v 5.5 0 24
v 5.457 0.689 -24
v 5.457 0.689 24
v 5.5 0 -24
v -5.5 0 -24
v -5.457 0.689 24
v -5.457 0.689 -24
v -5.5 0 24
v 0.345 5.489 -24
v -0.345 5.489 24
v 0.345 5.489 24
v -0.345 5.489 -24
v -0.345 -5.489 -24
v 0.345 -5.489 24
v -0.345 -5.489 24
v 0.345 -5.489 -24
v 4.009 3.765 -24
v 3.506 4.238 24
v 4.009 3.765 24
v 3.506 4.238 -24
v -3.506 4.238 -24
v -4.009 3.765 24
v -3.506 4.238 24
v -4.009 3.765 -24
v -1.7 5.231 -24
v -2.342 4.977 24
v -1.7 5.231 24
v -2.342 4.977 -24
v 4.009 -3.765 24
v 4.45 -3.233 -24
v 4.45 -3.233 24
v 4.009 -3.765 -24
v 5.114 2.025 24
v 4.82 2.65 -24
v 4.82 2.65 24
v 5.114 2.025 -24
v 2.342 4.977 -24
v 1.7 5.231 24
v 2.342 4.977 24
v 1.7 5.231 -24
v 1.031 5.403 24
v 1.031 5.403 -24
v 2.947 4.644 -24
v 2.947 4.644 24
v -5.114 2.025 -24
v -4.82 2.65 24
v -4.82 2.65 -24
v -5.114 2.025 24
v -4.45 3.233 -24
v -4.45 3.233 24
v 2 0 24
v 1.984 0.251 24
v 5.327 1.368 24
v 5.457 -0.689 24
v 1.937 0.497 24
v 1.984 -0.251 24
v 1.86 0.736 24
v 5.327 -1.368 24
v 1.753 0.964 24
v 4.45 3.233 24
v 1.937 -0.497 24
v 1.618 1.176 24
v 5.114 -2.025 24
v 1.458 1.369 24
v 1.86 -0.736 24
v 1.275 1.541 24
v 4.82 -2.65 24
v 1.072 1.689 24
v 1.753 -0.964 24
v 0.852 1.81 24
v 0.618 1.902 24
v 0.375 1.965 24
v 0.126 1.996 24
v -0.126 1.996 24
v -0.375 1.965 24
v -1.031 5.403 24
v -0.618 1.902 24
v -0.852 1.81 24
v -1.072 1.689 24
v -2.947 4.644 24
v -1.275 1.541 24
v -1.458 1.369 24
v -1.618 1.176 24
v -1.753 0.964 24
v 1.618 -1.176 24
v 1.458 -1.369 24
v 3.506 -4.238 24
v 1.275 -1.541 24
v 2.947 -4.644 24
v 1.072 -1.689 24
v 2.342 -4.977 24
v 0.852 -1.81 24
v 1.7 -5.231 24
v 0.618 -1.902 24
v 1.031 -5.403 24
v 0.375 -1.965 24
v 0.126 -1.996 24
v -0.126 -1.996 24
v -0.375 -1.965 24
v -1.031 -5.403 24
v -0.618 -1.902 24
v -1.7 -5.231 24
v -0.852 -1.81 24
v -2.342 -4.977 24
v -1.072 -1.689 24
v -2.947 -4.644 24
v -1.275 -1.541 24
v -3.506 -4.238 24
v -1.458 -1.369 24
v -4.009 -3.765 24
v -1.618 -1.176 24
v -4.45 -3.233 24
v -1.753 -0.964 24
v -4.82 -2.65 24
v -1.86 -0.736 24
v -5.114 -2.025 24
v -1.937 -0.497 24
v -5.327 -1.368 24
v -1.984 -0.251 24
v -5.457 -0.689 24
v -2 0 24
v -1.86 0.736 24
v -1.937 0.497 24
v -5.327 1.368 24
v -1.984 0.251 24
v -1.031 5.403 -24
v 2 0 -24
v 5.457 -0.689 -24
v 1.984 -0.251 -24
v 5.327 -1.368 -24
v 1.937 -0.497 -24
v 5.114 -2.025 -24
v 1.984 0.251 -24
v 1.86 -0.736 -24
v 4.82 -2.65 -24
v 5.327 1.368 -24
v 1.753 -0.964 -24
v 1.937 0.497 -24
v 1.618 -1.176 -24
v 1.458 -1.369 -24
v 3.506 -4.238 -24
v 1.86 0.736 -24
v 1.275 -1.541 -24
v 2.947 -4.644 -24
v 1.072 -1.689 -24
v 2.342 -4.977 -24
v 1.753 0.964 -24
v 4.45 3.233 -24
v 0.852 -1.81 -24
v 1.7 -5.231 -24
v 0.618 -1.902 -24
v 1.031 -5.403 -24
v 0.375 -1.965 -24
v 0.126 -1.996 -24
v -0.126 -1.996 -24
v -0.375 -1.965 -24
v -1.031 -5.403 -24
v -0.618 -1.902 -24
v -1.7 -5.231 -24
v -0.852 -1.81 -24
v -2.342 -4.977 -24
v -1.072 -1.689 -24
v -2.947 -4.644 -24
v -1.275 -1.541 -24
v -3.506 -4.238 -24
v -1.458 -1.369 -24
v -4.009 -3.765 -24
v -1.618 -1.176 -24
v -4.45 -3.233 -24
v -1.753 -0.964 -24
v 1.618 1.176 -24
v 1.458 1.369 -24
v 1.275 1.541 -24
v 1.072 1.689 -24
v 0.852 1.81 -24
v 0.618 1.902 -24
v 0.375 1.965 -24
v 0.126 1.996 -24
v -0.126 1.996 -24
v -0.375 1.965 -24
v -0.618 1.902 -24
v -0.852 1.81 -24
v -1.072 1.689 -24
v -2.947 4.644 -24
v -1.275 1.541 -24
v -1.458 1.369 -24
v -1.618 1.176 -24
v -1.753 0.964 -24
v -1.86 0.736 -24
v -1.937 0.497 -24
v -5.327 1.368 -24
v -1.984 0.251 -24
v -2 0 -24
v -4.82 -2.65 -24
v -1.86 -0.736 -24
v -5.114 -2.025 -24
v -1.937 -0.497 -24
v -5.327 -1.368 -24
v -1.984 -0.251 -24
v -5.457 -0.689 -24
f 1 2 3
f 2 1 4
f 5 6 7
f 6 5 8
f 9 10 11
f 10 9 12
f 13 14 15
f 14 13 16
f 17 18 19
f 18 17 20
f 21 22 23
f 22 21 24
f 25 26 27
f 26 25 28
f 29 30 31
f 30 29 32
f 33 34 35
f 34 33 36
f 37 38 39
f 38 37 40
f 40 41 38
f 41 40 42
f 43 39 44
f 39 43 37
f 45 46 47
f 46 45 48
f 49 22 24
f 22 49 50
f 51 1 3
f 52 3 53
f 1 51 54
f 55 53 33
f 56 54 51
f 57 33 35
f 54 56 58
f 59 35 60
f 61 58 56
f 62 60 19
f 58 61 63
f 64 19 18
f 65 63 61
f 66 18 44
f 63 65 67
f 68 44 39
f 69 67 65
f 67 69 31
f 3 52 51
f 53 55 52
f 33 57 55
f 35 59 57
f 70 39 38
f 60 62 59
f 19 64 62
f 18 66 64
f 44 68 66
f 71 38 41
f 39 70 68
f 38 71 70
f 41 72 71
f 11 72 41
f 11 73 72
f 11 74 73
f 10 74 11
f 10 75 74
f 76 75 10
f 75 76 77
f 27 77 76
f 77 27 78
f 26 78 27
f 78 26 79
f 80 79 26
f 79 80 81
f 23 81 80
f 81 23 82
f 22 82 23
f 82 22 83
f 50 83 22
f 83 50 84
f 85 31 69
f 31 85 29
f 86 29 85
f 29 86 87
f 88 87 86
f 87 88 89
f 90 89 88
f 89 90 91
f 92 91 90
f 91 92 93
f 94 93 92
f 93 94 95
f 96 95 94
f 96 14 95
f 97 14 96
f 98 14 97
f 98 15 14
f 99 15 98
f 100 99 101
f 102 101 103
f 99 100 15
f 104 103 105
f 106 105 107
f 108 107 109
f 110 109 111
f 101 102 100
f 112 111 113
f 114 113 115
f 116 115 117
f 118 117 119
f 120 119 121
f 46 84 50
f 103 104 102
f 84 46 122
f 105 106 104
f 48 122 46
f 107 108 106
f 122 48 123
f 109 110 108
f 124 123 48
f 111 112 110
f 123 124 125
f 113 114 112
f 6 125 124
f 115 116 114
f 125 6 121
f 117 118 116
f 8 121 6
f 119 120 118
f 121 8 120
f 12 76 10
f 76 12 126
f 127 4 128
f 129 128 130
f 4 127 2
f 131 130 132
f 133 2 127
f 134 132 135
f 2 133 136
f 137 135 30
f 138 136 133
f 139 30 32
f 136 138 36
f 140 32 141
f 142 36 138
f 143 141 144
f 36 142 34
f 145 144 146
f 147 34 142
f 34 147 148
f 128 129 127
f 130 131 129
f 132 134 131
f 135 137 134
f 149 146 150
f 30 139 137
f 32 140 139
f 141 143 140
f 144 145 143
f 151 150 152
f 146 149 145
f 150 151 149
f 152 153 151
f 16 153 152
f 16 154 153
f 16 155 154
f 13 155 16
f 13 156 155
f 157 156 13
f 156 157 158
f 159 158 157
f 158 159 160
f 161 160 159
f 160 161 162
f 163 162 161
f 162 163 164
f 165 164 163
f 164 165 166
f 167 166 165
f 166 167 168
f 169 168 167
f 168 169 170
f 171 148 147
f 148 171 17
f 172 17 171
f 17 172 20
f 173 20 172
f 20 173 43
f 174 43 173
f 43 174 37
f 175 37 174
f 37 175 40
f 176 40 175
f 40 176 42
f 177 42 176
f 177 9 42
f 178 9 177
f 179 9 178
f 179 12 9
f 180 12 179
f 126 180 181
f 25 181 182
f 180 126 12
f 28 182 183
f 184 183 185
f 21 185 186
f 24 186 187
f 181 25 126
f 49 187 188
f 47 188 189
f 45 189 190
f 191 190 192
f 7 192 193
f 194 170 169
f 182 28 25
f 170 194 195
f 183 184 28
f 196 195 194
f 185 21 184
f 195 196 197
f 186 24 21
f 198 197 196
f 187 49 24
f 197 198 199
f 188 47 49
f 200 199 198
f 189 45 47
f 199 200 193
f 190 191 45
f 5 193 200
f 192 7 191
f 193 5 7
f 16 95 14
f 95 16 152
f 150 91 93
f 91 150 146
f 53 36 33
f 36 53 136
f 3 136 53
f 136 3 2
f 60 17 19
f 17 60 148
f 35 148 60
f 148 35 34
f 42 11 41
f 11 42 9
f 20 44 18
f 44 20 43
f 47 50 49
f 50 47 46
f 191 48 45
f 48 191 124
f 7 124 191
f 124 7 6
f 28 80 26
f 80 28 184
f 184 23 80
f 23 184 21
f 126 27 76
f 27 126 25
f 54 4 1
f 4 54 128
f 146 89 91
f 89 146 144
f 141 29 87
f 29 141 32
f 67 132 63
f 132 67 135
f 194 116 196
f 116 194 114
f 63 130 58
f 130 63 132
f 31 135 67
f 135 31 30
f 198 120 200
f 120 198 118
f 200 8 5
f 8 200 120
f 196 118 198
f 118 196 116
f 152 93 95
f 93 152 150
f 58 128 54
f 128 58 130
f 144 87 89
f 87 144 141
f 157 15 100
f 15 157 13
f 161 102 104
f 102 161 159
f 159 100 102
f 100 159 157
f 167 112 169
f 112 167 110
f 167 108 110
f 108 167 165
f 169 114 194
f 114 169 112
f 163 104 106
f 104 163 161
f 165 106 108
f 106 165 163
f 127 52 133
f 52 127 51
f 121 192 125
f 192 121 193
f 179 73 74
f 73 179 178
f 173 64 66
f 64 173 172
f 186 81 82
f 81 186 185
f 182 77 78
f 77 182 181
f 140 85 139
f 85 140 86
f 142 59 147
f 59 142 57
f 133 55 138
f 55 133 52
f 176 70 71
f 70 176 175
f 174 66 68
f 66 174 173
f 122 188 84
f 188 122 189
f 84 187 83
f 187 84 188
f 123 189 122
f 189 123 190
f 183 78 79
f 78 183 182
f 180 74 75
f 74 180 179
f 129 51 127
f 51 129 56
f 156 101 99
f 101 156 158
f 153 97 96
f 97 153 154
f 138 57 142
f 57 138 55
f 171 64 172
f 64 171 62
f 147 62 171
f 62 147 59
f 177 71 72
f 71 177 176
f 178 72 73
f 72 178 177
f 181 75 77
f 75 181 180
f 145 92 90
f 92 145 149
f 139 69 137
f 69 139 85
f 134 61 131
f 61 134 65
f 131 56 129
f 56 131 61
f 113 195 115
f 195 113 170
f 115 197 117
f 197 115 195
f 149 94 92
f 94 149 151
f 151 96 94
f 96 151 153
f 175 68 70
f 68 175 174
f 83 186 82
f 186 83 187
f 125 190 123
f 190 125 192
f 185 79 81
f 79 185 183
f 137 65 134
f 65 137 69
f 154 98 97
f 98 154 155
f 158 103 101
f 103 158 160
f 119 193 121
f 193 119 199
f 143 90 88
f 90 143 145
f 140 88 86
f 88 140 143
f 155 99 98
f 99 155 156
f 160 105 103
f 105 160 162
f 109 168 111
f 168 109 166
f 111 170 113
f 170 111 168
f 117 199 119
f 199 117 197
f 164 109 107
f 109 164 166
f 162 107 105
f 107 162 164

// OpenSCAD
$fn = 50;


difference() {
	union() {
		translate(v = [0, 0, -24.0000000000]) {
			cylinder(h = 48, r = 5.5000000000);
		}
	}
	union() {
		translate(v = [0, 0, -100.0000000000]) {
			cylinder(h = 200, r = 2);
		}
	}
}
